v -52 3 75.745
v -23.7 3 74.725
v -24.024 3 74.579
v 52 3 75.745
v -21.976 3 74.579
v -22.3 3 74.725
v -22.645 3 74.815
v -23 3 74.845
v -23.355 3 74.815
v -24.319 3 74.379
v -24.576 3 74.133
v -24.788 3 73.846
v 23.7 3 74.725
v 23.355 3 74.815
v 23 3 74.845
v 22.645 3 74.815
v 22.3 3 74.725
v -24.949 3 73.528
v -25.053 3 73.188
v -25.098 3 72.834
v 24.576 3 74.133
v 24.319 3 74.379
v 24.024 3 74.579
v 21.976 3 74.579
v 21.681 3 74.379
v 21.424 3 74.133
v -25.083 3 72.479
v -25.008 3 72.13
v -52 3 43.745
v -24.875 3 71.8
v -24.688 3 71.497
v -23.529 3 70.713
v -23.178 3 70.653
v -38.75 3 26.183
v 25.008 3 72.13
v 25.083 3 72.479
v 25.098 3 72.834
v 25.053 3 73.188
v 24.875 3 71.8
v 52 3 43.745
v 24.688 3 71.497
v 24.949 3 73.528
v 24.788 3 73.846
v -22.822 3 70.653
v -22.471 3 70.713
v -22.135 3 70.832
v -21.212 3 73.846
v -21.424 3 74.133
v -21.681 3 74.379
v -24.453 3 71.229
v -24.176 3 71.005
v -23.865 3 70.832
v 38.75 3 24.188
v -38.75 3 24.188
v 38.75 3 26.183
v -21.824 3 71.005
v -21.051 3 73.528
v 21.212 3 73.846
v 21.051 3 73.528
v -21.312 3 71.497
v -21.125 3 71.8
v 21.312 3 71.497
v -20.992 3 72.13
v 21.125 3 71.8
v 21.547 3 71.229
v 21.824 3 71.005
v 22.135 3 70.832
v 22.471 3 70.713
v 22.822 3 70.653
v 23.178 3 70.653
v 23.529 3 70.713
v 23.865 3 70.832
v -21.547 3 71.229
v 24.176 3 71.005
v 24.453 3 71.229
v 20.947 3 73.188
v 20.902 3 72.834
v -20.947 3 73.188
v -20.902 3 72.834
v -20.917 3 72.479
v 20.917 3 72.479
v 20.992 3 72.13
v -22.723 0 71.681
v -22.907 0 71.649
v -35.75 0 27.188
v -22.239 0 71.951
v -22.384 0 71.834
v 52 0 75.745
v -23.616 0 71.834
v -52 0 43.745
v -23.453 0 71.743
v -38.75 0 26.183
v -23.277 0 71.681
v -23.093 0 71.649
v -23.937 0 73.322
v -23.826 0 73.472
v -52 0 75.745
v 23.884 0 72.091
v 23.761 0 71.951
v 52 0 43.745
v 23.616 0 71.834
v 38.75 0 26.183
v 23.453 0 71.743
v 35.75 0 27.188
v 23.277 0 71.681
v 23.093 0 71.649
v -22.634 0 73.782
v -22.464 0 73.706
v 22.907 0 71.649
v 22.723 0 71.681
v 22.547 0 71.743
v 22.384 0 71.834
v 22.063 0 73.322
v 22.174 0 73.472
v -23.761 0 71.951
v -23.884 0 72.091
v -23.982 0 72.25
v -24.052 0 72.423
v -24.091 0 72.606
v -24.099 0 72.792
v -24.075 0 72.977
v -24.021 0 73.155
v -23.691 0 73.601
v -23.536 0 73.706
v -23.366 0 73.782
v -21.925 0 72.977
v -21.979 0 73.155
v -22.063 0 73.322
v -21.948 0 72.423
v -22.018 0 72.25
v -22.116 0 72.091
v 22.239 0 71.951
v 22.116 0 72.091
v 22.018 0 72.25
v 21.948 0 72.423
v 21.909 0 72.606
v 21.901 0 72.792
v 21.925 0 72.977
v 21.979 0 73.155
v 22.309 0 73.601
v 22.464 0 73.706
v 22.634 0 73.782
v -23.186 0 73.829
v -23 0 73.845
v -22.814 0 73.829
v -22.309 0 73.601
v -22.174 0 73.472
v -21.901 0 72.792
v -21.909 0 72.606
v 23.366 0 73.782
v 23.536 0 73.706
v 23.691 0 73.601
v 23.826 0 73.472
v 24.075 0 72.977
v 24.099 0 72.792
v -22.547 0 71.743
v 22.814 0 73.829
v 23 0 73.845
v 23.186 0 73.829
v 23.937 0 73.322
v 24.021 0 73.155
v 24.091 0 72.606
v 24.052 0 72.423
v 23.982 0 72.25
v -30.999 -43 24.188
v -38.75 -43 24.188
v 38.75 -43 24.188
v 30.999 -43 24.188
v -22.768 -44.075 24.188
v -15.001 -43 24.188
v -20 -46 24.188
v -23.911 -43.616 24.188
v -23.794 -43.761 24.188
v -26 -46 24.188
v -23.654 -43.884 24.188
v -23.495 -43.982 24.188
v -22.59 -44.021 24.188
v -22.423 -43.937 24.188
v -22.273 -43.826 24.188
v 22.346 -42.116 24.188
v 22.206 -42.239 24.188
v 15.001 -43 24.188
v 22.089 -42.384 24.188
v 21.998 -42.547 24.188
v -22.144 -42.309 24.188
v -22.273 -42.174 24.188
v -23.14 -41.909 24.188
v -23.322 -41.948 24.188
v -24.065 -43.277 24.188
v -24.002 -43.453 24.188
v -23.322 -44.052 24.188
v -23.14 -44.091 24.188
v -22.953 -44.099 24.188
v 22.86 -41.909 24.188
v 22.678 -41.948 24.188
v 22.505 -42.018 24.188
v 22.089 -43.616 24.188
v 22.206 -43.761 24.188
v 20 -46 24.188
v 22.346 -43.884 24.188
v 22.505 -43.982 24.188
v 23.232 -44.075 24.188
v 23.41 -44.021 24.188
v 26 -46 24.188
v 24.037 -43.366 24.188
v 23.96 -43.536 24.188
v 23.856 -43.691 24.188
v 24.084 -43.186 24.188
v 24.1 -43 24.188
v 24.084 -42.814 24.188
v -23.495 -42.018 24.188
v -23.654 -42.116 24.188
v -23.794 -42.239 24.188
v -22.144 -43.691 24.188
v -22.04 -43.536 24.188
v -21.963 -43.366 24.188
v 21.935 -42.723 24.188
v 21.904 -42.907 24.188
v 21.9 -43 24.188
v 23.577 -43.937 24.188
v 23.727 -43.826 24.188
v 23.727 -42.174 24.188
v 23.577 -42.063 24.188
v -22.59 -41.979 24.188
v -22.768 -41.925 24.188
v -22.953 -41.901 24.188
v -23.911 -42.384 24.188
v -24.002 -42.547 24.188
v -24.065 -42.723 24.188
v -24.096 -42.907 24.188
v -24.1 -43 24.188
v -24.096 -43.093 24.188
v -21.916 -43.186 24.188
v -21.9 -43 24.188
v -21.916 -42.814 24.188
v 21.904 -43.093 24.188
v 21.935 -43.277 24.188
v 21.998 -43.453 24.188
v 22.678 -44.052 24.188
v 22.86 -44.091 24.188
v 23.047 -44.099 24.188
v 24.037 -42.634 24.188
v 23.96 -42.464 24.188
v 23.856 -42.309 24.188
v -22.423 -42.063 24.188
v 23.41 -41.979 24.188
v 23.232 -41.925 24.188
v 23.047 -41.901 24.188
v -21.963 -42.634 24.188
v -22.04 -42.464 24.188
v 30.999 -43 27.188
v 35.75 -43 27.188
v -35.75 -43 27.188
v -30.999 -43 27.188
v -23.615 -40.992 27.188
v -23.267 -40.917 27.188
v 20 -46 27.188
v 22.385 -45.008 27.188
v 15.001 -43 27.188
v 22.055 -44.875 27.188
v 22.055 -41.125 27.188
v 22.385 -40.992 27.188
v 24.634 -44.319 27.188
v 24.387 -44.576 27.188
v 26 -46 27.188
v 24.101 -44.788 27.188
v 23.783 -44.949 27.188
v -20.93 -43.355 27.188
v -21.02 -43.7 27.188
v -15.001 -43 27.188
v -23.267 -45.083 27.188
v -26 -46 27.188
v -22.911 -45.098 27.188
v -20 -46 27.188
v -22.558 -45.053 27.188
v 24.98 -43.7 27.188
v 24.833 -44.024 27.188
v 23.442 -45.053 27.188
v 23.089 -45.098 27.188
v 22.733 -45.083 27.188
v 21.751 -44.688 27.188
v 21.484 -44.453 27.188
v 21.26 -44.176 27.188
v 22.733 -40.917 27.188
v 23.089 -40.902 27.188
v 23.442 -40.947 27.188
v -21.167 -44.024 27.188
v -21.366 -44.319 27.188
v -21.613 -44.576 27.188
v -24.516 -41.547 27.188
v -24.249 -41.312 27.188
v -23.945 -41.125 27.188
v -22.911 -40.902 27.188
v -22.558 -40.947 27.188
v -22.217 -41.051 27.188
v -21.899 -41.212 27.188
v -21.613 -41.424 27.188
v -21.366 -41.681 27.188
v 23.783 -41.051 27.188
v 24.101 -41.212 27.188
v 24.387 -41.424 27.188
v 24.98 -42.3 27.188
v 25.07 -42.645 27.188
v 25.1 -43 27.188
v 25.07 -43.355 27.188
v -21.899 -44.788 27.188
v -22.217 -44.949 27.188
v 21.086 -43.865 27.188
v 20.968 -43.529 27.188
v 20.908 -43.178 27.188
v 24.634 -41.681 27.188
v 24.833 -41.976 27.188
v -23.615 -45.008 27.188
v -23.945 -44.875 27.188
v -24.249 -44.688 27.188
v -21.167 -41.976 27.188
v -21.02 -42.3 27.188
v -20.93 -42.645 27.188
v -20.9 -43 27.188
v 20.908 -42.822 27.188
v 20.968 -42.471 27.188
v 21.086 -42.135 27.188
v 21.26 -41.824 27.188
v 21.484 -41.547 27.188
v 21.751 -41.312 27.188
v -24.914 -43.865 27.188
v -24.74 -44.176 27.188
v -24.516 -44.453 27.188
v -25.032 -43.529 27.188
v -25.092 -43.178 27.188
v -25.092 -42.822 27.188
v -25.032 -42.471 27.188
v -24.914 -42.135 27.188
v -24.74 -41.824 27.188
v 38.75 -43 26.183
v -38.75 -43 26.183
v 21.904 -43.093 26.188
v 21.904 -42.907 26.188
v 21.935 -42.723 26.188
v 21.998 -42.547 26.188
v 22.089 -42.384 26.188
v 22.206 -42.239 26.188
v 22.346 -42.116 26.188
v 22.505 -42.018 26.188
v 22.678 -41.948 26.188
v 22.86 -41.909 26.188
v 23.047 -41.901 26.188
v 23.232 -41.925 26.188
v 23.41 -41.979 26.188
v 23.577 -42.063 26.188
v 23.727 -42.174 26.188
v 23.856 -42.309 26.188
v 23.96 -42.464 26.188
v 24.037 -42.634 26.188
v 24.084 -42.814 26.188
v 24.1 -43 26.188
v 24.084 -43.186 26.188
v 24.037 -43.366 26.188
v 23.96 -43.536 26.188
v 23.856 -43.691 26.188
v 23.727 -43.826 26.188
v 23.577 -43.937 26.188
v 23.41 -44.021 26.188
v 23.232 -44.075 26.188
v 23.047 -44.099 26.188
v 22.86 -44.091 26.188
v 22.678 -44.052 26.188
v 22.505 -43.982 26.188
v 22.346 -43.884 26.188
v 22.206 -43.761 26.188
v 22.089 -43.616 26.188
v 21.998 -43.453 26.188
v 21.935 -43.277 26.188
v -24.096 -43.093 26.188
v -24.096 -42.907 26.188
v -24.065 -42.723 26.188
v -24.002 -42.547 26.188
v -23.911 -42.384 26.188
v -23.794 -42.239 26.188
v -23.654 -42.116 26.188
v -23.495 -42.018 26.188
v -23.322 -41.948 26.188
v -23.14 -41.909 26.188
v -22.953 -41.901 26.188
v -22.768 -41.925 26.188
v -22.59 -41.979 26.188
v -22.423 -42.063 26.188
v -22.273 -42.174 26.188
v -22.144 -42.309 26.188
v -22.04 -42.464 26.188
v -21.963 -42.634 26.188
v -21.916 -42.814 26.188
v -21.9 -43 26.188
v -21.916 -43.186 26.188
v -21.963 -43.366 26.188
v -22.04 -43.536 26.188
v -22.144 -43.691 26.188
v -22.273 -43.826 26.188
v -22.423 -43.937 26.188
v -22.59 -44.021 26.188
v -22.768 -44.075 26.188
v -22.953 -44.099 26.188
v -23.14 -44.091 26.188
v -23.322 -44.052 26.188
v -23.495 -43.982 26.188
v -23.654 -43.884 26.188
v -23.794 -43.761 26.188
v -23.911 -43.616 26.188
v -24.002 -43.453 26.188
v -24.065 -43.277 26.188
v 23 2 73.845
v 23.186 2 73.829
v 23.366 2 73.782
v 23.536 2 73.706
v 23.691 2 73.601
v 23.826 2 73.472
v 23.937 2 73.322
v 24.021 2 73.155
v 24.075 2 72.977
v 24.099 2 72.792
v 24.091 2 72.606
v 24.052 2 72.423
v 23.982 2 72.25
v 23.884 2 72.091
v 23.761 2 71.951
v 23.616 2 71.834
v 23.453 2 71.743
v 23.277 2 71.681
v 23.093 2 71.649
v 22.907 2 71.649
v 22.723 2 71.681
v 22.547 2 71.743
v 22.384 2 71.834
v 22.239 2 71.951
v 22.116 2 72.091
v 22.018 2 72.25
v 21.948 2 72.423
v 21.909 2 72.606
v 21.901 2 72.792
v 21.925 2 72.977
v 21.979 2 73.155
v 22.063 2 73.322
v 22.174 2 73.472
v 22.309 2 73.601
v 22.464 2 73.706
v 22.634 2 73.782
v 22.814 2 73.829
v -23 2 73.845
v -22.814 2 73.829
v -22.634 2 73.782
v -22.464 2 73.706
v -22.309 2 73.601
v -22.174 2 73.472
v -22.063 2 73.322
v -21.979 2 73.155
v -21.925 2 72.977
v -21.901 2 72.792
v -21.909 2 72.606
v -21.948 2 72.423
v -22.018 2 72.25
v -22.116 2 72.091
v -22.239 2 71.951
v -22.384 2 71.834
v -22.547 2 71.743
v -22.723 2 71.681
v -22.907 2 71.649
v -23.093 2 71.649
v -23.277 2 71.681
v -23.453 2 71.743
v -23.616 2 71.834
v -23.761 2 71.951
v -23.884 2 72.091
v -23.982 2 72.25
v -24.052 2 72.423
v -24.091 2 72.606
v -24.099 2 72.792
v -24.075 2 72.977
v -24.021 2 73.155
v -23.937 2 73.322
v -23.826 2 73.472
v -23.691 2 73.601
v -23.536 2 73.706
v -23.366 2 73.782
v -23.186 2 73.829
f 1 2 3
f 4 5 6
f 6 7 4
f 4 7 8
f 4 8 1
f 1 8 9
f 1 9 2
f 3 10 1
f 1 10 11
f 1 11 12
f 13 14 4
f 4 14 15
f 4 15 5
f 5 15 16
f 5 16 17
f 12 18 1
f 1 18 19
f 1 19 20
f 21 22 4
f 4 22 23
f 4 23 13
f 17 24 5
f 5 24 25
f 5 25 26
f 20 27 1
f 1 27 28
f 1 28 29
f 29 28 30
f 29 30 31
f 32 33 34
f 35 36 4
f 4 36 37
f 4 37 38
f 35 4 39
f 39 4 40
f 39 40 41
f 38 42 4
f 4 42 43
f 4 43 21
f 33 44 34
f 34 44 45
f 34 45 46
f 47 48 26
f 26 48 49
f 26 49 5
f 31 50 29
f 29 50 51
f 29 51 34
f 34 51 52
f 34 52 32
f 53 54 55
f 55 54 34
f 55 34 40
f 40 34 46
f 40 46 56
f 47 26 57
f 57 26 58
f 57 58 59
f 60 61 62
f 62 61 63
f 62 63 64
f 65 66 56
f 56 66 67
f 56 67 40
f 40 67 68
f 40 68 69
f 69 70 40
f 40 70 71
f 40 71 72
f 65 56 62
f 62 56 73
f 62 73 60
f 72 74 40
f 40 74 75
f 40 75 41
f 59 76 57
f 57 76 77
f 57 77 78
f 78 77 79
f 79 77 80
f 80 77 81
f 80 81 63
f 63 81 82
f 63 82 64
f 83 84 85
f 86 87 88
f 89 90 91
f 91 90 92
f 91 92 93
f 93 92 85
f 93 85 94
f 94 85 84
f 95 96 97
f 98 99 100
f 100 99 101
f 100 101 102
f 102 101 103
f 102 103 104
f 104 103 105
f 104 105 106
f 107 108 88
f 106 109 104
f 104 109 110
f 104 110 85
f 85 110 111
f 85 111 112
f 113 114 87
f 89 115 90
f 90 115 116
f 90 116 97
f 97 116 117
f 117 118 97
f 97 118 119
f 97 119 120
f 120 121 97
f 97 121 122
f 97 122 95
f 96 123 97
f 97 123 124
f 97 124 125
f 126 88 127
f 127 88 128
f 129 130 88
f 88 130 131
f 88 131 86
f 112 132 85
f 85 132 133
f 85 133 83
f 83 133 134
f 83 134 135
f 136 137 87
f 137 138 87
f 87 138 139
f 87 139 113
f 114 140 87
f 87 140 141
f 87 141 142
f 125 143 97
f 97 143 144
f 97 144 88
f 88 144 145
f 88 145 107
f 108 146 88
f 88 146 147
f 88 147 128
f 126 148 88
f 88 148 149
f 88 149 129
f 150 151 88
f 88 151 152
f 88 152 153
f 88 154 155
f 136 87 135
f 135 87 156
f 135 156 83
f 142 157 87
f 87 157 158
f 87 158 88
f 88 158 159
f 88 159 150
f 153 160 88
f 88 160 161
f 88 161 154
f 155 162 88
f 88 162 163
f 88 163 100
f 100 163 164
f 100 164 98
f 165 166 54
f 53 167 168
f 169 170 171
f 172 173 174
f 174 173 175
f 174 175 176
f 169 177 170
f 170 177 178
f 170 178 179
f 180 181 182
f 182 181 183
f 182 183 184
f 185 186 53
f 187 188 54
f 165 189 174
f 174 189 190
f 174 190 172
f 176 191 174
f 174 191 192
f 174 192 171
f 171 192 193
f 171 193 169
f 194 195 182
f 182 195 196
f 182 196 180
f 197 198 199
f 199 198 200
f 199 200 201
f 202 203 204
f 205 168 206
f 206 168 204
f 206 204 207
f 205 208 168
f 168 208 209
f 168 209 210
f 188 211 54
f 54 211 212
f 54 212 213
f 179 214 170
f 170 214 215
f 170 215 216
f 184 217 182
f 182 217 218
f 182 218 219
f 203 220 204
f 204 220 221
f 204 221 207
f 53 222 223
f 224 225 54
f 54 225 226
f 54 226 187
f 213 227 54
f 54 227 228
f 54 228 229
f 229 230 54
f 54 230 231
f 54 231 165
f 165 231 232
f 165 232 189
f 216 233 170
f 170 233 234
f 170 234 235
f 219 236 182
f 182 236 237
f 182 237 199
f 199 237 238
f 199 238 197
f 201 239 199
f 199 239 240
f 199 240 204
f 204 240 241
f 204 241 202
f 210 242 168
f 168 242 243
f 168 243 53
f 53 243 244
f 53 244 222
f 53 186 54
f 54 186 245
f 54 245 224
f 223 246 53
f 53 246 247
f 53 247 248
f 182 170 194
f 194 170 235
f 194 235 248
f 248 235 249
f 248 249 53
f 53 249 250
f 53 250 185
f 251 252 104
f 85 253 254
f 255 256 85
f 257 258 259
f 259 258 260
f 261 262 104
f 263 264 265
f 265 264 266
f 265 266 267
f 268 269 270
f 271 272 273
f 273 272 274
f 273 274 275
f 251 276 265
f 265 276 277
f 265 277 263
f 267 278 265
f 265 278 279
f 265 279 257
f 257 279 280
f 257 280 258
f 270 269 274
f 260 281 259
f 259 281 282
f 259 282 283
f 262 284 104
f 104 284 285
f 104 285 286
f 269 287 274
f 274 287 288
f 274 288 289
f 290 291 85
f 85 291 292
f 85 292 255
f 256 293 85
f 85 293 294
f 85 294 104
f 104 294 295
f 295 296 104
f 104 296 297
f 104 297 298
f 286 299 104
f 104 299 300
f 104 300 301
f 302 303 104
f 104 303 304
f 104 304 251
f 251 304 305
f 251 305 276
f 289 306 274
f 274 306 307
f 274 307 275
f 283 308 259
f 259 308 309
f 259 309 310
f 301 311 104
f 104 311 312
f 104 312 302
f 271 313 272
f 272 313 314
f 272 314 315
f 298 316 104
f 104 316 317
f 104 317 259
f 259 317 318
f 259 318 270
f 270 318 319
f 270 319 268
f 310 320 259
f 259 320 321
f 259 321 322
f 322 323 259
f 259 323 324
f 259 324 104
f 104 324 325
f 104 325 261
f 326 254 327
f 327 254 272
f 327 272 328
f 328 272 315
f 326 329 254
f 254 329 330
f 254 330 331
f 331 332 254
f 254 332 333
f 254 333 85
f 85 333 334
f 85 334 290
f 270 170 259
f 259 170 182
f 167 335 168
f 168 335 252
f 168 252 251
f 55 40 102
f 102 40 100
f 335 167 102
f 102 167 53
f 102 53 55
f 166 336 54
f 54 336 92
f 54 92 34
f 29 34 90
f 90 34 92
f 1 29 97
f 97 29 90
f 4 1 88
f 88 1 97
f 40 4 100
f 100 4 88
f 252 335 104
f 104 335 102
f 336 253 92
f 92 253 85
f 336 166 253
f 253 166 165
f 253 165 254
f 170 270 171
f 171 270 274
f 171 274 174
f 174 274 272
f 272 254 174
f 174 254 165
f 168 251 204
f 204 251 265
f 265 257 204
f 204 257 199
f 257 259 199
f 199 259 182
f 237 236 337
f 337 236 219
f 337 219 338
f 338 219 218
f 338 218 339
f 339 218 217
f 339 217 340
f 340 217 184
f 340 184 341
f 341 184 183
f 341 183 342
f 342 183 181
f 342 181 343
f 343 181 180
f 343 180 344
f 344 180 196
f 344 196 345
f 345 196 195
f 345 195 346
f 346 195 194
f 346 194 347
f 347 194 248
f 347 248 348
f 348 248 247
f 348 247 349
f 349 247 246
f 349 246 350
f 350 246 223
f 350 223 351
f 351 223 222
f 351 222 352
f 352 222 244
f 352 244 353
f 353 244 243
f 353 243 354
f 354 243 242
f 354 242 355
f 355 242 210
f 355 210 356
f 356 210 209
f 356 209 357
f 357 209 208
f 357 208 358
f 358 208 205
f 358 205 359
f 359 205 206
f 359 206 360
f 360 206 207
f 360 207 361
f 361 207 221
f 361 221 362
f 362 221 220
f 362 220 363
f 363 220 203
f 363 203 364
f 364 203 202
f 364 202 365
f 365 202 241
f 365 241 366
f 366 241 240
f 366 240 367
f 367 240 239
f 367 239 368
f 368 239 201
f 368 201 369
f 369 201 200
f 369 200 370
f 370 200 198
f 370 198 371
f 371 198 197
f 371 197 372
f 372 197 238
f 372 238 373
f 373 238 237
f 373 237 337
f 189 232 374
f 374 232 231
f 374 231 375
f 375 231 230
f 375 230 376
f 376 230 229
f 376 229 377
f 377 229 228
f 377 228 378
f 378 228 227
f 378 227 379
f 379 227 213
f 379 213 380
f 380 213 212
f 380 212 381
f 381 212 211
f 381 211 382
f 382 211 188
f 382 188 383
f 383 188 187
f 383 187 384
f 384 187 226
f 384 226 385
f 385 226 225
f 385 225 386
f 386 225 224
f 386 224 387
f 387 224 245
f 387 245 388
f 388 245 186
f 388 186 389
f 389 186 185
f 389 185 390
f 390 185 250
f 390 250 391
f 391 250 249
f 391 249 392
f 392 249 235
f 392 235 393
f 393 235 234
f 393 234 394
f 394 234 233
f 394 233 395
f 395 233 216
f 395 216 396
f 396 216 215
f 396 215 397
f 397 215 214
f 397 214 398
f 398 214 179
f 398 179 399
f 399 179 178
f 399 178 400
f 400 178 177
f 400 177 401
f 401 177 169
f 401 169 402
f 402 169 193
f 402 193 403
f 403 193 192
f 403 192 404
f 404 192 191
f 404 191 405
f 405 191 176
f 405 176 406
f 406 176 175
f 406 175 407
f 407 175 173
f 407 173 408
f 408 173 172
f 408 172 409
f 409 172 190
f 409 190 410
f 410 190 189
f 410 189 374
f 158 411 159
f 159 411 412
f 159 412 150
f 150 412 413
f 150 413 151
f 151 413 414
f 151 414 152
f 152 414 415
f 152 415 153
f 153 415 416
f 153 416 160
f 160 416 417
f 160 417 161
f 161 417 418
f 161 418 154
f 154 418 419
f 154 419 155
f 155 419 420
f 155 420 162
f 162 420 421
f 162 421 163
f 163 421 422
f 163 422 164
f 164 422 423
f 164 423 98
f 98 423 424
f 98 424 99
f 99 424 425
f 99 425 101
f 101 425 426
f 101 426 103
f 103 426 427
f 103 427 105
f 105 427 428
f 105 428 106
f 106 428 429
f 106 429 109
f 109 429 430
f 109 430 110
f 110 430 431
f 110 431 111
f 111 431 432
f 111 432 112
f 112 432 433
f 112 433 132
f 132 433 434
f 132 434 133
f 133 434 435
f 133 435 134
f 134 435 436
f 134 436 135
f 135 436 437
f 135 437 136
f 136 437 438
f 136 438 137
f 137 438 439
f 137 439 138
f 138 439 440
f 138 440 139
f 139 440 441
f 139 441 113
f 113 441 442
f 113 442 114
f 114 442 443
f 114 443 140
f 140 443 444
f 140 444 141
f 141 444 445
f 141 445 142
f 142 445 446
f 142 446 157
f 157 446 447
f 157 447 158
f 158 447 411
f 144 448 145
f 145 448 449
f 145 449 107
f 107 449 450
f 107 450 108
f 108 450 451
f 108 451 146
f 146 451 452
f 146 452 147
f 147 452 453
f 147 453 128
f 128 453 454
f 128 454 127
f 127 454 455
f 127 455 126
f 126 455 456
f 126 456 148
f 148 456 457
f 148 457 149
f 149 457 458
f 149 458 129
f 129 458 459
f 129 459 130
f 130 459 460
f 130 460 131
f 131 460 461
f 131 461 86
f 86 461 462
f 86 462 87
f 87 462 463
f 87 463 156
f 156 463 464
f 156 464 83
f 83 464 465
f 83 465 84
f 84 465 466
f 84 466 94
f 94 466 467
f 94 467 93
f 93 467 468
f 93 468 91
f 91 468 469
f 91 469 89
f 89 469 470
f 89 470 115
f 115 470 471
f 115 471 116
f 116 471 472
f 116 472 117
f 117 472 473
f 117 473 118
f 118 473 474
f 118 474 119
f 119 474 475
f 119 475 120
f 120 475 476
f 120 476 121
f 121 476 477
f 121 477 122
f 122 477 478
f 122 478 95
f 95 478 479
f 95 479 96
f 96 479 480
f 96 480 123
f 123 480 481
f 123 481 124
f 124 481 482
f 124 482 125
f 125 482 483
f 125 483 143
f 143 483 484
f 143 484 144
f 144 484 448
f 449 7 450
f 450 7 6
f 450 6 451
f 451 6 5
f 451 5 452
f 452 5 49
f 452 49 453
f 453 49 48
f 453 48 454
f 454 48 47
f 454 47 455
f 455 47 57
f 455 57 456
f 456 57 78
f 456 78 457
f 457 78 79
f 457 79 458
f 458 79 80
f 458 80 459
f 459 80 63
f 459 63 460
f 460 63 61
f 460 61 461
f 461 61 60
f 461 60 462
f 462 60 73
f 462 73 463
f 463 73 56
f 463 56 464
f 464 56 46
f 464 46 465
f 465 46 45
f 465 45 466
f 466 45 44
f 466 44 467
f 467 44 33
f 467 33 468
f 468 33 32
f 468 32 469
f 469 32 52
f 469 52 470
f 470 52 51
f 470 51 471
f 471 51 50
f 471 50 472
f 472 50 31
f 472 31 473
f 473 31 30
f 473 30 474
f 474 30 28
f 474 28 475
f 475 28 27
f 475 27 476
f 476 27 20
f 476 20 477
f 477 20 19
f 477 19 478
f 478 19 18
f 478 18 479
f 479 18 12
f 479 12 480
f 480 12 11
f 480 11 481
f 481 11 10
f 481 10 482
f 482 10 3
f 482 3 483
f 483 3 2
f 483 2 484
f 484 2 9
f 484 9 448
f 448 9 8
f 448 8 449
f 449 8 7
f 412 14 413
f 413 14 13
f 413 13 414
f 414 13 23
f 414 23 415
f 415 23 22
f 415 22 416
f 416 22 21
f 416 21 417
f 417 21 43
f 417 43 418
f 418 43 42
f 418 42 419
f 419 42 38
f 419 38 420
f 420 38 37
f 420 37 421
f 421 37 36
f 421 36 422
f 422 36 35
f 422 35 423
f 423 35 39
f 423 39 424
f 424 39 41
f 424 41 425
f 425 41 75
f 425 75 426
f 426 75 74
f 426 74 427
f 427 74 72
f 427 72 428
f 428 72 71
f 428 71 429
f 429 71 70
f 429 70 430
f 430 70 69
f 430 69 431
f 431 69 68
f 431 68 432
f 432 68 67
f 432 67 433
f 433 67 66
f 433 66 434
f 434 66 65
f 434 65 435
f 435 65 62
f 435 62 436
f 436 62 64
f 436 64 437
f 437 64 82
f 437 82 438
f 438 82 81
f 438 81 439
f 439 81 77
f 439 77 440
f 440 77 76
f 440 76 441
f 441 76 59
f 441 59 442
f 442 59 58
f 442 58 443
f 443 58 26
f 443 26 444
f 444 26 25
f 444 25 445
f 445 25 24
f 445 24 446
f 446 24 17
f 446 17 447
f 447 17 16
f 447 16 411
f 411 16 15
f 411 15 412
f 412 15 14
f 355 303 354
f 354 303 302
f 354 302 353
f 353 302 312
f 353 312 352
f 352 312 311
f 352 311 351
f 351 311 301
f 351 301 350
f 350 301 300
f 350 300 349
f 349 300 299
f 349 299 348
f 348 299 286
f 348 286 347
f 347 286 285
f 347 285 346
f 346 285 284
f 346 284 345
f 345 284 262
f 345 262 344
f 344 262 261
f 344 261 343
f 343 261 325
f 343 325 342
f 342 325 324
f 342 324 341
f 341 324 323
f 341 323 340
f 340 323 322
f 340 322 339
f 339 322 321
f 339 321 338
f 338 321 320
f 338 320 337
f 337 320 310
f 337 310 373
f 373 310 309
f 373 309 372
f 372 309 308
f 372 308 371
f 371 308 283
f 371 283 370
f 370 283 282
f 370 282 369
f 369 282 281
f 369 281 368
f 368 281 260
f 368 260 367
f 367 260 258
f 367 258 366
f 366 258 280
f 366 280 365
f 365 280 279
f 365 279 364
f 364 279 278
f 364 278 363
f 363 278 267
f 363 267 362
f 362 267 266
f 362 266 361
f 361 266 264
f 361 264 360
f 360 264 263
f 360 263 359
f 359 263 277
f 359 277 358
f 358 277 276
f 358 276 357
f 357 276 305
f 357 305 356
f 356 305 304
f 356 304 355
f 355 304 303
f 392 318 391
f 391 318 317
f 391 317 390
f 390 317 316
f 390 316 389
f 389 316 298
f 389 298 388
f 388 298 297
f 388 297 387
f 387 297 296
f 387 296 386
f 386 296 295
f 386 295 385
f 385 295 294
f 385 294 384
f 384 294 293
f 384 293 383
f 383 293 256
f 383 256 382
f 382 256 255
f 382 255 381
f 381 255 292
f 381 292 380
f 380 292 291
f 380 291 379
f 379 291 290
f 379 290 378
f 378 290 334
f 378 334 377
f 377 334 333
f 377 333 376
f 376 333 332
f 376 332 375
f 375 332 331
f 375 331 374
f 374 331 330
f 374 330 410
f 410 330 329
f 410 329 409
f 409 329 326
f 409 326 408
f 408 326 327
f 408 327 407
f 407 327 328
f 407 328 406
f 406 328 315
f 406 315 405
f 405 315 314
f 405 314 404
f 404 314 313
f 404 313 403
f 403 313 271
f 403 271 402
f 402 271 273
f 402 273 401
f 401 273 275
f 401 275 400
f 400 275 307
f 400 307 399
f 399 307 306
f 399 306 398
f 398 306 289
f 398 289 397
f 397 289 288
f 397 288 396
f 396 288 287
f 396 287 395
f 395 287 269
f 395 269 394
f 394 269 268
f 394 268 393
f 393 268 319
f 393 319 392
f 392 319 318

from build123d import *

# Parameters (mm, degrees)
DODANIE_WYCI_GNI_CIE1_DEPTH = 3
DODANIE_WYCI_GNI_CIE2_DEPTH = 43
DODANIE_WYCI_GNI_CIE3_DEPTH = 3
WYTNIJ_WYCI_GNI_CIE2_DEPTH  = 3
SZKIC3_R                    = 1.1
WYTNIJ_WYCI_GNI_CIE3_DEPTH  = 3
SFAZOWANIE1_SIZE            = 1
SFAZOWANIE2_SIZE            = 1


with BuildPart() as part:
    # Szkic1 → Dodanie-wyciągnięcie1 (new body)
    with BuildSketch(Plane(origin=(0, 0, 0), x_dir=(1, 0, 0), z_dir=(0, 1, 0))):
        Polygon((-35.75, -27.18761121), (-38.75, -26.182869049), (-52, -43.745257839), (-52, -75.745257839), (52, -75.745257839), (52, -43.745257839), (38.75, -26.182869049), (35.75, -27.18761121), align=None)
        Polygon((38.75, -24.18761121), (-38.75, -24.18761121), (-38.75, -26.182869049), (-35.75, -27.18761121), (35.75, -27.18761121), (38.75, -26.182869049), align=None)
    extrude(amount=DODANIE_WYCI_GNI_CIE1_DEPTH)

    # Szkic1<3> → Dodanie-wyciągnięcie2 (add)
    with BuildSketch(Plane(origin=(0, 0, 0), x_dir=(1, 0, 0), z_dir=(0, 1, 0))):
        Polygon((38.75, -24.18761121), (-38.75, -24.18761121), (-38.75, -26.182869049), (-35.75, -27.18761121), (35.75, -27.18761121), (38.75, -26.182869049), align=None)
    extrude(amount=-DODANIE_WYCI_GNI_CIE2_DEPTH)

    # Szkic2 → Dodanie-wyciągnięcie3 (add)
    with BuildSketch(Plane.XY.offset(27.18761121)):
        with BuildLine():
            Line((-26, -46), (-20, -46))
            Line((-20, -46), (-20, -43))
            Line((-20, -43), (-21.9, -43))
            ThreePointArc((-21.9, -43), (-23, -44.1), (-24.1, -43))
            Line((-24.1, -43), (-26, -43))
            Line((-26, -43), (-26, -46))
        make_face()
        with BuildLine():
            ThreePointArc((-24.1, -43), (-23, -44.1), (-21.9, -43))
            Line((-21.9, -43), (-24.1, -43))
        make_face()
        with BuildLine():
            Line((-24.1, -43), (-21.9, -43))
            ThreePointArc((-21.9, -43), (-23, -41.9), (-24.1, -43))
        make_face()
        with BuildLine():
            Line((20, -46), (26, -46))
            Line((26, -46), (26, -43))
            Line((26, -43), (24.1, -43))
            ThreePointArc((24.1, -43), (23, -44.1), (21.9, -43))
            Line((21.9, -43), (20, -43))
            Line((20, -43), (20, -46))
        make_face()
        with BuildLine():
            ThreePointArc((21.9, -43), (23, -44.1), (24.1, -43))
            Line((24.1, -43), (21.9, -43))
        make_face()
        with BuildLine():
            Line((21.9, -43), (24.1, -43))
            ThreePointArc((24.1, -43), (23, -41.9), (21.9, -43))
        make_face()
        Polygon((-30.998889877, -43), (-26, -46), (-26, -43), align=None)
        Polygon((-20, -46), (-15.001110123, -43), (-20, -43), align=None)
        Polygon((15.001110123, -43), (20, -46), (20, -43), align=None)
        Polygon((26, -43), (26, -46), (30.998889877, -43), align=None)
    extrude(amount=-DODANIE_WYCI_GNI_CIE3_DEPTH)

    # Szkic2<4> → Wytnij-wyciągnięcie2 (cut)
    with BuildSketch(Plane.XY.offset(27.18761121)):
        with BuildLine():
            ThreePointArc((-24.1, -43), (-23, -44.1), (-21.9, -43))
            Line((-21.9, -43), (-24.1, -43))
        make_face()
        with BuildLine():
            Line((-24.1, -43), (-21.9, -43))
            ThreePointArc((-21.9, -43), (-23, -41.9), (-24.1, -43))
        make_face()
        with BuildLine():
            ThreePointArc((21.9, -43), (23, -44.1), (24.1, -43))
            Line((24.1, -43), (21.9, -43))
        make_face()
        with BuildLine():
            Line((21.9, -43), (24.1, -43))
            ThreePointArc((24.1, -43), (23, -41.9), (21.9, -43))
        make_face()
    extrude(amount=-WYTNIJ_WYCI_GNI_CIE2_DEPTH, mode=Mode.SUBTRACT)

    # Szkic3 → Wytnij-wyciągnięcie3 (cut)
    with BuildSketch(Plane(origin=(0, 3, 0), x_dir=(1, 0, 0), z_dir=(0, 1, 0))):
        with Locations(Location((-23, -72.745257839, 0), (0, 0, 270))):
            Circle(SZKIC3_R)
        with Locations(Location((23, -72.745257839, 0), (0, 0, 270))):
            Circle(SZKIC3_R)
    extrude(amount=-WYTNIJ_WYCI_GNI_CIE3_DEPTH, mode=Mode.SUBTRACT)

    # Sfazowanie1
    sfazowanie1_edges = [part.edges().sort_by_distance(p)[0] for p in [
        (-23, 3, 71.645257839),
    ]]
    chamfer(sfazowanie1_edges, length=SFAZOWANIE1_SIZE)

    # Sfazowanie2
    sfazowanie2_edges = [part.edges().sort_by_distance(p)[0] for p in [
        (23, 3, 71.645257839),
    ]]
    chamfer(sfazowanie2_edges, length=SFAZOWANIE2_SIZE)

    # Sfazowanie3: read off the stored shape, not the designer's step
    # Sfazowanie3 outline → Sfazowanie3 (revolve, cut)
    with BuildSketch(Plane(origin=(23, -43, 0), x_dir=(1, 0, 0), z_dir=(0, -1, 0))):
        Polygon((1.1, 27.18761121), (1.1, 26.18761121), (2.1, 27.18761121), align=None)
    revolve(axis=Axis((23, -43, 0), (0, 0, 1)), mode=Mode.SUBTRACT)

    # Sfazowanie4: read off the stored shape, not the designer's step
    # Sfazowanie4 outline → Sfazowanie4 (revolve, cut)
    with BuildSketch(Plane(origin=(-23, -43, 0), x_dir=(1, 0, 0), z_dir=(0, -1, 0))):
        Polygon((1.1, 27.18761121), (1.1, 26.18761121), (2.1, 27.18761121), align=None)
    revolve(axis=Axis((-23, -43, 0), (0, 0, 1)), mode=Mode.SUBTRACT)


solid = part.part
